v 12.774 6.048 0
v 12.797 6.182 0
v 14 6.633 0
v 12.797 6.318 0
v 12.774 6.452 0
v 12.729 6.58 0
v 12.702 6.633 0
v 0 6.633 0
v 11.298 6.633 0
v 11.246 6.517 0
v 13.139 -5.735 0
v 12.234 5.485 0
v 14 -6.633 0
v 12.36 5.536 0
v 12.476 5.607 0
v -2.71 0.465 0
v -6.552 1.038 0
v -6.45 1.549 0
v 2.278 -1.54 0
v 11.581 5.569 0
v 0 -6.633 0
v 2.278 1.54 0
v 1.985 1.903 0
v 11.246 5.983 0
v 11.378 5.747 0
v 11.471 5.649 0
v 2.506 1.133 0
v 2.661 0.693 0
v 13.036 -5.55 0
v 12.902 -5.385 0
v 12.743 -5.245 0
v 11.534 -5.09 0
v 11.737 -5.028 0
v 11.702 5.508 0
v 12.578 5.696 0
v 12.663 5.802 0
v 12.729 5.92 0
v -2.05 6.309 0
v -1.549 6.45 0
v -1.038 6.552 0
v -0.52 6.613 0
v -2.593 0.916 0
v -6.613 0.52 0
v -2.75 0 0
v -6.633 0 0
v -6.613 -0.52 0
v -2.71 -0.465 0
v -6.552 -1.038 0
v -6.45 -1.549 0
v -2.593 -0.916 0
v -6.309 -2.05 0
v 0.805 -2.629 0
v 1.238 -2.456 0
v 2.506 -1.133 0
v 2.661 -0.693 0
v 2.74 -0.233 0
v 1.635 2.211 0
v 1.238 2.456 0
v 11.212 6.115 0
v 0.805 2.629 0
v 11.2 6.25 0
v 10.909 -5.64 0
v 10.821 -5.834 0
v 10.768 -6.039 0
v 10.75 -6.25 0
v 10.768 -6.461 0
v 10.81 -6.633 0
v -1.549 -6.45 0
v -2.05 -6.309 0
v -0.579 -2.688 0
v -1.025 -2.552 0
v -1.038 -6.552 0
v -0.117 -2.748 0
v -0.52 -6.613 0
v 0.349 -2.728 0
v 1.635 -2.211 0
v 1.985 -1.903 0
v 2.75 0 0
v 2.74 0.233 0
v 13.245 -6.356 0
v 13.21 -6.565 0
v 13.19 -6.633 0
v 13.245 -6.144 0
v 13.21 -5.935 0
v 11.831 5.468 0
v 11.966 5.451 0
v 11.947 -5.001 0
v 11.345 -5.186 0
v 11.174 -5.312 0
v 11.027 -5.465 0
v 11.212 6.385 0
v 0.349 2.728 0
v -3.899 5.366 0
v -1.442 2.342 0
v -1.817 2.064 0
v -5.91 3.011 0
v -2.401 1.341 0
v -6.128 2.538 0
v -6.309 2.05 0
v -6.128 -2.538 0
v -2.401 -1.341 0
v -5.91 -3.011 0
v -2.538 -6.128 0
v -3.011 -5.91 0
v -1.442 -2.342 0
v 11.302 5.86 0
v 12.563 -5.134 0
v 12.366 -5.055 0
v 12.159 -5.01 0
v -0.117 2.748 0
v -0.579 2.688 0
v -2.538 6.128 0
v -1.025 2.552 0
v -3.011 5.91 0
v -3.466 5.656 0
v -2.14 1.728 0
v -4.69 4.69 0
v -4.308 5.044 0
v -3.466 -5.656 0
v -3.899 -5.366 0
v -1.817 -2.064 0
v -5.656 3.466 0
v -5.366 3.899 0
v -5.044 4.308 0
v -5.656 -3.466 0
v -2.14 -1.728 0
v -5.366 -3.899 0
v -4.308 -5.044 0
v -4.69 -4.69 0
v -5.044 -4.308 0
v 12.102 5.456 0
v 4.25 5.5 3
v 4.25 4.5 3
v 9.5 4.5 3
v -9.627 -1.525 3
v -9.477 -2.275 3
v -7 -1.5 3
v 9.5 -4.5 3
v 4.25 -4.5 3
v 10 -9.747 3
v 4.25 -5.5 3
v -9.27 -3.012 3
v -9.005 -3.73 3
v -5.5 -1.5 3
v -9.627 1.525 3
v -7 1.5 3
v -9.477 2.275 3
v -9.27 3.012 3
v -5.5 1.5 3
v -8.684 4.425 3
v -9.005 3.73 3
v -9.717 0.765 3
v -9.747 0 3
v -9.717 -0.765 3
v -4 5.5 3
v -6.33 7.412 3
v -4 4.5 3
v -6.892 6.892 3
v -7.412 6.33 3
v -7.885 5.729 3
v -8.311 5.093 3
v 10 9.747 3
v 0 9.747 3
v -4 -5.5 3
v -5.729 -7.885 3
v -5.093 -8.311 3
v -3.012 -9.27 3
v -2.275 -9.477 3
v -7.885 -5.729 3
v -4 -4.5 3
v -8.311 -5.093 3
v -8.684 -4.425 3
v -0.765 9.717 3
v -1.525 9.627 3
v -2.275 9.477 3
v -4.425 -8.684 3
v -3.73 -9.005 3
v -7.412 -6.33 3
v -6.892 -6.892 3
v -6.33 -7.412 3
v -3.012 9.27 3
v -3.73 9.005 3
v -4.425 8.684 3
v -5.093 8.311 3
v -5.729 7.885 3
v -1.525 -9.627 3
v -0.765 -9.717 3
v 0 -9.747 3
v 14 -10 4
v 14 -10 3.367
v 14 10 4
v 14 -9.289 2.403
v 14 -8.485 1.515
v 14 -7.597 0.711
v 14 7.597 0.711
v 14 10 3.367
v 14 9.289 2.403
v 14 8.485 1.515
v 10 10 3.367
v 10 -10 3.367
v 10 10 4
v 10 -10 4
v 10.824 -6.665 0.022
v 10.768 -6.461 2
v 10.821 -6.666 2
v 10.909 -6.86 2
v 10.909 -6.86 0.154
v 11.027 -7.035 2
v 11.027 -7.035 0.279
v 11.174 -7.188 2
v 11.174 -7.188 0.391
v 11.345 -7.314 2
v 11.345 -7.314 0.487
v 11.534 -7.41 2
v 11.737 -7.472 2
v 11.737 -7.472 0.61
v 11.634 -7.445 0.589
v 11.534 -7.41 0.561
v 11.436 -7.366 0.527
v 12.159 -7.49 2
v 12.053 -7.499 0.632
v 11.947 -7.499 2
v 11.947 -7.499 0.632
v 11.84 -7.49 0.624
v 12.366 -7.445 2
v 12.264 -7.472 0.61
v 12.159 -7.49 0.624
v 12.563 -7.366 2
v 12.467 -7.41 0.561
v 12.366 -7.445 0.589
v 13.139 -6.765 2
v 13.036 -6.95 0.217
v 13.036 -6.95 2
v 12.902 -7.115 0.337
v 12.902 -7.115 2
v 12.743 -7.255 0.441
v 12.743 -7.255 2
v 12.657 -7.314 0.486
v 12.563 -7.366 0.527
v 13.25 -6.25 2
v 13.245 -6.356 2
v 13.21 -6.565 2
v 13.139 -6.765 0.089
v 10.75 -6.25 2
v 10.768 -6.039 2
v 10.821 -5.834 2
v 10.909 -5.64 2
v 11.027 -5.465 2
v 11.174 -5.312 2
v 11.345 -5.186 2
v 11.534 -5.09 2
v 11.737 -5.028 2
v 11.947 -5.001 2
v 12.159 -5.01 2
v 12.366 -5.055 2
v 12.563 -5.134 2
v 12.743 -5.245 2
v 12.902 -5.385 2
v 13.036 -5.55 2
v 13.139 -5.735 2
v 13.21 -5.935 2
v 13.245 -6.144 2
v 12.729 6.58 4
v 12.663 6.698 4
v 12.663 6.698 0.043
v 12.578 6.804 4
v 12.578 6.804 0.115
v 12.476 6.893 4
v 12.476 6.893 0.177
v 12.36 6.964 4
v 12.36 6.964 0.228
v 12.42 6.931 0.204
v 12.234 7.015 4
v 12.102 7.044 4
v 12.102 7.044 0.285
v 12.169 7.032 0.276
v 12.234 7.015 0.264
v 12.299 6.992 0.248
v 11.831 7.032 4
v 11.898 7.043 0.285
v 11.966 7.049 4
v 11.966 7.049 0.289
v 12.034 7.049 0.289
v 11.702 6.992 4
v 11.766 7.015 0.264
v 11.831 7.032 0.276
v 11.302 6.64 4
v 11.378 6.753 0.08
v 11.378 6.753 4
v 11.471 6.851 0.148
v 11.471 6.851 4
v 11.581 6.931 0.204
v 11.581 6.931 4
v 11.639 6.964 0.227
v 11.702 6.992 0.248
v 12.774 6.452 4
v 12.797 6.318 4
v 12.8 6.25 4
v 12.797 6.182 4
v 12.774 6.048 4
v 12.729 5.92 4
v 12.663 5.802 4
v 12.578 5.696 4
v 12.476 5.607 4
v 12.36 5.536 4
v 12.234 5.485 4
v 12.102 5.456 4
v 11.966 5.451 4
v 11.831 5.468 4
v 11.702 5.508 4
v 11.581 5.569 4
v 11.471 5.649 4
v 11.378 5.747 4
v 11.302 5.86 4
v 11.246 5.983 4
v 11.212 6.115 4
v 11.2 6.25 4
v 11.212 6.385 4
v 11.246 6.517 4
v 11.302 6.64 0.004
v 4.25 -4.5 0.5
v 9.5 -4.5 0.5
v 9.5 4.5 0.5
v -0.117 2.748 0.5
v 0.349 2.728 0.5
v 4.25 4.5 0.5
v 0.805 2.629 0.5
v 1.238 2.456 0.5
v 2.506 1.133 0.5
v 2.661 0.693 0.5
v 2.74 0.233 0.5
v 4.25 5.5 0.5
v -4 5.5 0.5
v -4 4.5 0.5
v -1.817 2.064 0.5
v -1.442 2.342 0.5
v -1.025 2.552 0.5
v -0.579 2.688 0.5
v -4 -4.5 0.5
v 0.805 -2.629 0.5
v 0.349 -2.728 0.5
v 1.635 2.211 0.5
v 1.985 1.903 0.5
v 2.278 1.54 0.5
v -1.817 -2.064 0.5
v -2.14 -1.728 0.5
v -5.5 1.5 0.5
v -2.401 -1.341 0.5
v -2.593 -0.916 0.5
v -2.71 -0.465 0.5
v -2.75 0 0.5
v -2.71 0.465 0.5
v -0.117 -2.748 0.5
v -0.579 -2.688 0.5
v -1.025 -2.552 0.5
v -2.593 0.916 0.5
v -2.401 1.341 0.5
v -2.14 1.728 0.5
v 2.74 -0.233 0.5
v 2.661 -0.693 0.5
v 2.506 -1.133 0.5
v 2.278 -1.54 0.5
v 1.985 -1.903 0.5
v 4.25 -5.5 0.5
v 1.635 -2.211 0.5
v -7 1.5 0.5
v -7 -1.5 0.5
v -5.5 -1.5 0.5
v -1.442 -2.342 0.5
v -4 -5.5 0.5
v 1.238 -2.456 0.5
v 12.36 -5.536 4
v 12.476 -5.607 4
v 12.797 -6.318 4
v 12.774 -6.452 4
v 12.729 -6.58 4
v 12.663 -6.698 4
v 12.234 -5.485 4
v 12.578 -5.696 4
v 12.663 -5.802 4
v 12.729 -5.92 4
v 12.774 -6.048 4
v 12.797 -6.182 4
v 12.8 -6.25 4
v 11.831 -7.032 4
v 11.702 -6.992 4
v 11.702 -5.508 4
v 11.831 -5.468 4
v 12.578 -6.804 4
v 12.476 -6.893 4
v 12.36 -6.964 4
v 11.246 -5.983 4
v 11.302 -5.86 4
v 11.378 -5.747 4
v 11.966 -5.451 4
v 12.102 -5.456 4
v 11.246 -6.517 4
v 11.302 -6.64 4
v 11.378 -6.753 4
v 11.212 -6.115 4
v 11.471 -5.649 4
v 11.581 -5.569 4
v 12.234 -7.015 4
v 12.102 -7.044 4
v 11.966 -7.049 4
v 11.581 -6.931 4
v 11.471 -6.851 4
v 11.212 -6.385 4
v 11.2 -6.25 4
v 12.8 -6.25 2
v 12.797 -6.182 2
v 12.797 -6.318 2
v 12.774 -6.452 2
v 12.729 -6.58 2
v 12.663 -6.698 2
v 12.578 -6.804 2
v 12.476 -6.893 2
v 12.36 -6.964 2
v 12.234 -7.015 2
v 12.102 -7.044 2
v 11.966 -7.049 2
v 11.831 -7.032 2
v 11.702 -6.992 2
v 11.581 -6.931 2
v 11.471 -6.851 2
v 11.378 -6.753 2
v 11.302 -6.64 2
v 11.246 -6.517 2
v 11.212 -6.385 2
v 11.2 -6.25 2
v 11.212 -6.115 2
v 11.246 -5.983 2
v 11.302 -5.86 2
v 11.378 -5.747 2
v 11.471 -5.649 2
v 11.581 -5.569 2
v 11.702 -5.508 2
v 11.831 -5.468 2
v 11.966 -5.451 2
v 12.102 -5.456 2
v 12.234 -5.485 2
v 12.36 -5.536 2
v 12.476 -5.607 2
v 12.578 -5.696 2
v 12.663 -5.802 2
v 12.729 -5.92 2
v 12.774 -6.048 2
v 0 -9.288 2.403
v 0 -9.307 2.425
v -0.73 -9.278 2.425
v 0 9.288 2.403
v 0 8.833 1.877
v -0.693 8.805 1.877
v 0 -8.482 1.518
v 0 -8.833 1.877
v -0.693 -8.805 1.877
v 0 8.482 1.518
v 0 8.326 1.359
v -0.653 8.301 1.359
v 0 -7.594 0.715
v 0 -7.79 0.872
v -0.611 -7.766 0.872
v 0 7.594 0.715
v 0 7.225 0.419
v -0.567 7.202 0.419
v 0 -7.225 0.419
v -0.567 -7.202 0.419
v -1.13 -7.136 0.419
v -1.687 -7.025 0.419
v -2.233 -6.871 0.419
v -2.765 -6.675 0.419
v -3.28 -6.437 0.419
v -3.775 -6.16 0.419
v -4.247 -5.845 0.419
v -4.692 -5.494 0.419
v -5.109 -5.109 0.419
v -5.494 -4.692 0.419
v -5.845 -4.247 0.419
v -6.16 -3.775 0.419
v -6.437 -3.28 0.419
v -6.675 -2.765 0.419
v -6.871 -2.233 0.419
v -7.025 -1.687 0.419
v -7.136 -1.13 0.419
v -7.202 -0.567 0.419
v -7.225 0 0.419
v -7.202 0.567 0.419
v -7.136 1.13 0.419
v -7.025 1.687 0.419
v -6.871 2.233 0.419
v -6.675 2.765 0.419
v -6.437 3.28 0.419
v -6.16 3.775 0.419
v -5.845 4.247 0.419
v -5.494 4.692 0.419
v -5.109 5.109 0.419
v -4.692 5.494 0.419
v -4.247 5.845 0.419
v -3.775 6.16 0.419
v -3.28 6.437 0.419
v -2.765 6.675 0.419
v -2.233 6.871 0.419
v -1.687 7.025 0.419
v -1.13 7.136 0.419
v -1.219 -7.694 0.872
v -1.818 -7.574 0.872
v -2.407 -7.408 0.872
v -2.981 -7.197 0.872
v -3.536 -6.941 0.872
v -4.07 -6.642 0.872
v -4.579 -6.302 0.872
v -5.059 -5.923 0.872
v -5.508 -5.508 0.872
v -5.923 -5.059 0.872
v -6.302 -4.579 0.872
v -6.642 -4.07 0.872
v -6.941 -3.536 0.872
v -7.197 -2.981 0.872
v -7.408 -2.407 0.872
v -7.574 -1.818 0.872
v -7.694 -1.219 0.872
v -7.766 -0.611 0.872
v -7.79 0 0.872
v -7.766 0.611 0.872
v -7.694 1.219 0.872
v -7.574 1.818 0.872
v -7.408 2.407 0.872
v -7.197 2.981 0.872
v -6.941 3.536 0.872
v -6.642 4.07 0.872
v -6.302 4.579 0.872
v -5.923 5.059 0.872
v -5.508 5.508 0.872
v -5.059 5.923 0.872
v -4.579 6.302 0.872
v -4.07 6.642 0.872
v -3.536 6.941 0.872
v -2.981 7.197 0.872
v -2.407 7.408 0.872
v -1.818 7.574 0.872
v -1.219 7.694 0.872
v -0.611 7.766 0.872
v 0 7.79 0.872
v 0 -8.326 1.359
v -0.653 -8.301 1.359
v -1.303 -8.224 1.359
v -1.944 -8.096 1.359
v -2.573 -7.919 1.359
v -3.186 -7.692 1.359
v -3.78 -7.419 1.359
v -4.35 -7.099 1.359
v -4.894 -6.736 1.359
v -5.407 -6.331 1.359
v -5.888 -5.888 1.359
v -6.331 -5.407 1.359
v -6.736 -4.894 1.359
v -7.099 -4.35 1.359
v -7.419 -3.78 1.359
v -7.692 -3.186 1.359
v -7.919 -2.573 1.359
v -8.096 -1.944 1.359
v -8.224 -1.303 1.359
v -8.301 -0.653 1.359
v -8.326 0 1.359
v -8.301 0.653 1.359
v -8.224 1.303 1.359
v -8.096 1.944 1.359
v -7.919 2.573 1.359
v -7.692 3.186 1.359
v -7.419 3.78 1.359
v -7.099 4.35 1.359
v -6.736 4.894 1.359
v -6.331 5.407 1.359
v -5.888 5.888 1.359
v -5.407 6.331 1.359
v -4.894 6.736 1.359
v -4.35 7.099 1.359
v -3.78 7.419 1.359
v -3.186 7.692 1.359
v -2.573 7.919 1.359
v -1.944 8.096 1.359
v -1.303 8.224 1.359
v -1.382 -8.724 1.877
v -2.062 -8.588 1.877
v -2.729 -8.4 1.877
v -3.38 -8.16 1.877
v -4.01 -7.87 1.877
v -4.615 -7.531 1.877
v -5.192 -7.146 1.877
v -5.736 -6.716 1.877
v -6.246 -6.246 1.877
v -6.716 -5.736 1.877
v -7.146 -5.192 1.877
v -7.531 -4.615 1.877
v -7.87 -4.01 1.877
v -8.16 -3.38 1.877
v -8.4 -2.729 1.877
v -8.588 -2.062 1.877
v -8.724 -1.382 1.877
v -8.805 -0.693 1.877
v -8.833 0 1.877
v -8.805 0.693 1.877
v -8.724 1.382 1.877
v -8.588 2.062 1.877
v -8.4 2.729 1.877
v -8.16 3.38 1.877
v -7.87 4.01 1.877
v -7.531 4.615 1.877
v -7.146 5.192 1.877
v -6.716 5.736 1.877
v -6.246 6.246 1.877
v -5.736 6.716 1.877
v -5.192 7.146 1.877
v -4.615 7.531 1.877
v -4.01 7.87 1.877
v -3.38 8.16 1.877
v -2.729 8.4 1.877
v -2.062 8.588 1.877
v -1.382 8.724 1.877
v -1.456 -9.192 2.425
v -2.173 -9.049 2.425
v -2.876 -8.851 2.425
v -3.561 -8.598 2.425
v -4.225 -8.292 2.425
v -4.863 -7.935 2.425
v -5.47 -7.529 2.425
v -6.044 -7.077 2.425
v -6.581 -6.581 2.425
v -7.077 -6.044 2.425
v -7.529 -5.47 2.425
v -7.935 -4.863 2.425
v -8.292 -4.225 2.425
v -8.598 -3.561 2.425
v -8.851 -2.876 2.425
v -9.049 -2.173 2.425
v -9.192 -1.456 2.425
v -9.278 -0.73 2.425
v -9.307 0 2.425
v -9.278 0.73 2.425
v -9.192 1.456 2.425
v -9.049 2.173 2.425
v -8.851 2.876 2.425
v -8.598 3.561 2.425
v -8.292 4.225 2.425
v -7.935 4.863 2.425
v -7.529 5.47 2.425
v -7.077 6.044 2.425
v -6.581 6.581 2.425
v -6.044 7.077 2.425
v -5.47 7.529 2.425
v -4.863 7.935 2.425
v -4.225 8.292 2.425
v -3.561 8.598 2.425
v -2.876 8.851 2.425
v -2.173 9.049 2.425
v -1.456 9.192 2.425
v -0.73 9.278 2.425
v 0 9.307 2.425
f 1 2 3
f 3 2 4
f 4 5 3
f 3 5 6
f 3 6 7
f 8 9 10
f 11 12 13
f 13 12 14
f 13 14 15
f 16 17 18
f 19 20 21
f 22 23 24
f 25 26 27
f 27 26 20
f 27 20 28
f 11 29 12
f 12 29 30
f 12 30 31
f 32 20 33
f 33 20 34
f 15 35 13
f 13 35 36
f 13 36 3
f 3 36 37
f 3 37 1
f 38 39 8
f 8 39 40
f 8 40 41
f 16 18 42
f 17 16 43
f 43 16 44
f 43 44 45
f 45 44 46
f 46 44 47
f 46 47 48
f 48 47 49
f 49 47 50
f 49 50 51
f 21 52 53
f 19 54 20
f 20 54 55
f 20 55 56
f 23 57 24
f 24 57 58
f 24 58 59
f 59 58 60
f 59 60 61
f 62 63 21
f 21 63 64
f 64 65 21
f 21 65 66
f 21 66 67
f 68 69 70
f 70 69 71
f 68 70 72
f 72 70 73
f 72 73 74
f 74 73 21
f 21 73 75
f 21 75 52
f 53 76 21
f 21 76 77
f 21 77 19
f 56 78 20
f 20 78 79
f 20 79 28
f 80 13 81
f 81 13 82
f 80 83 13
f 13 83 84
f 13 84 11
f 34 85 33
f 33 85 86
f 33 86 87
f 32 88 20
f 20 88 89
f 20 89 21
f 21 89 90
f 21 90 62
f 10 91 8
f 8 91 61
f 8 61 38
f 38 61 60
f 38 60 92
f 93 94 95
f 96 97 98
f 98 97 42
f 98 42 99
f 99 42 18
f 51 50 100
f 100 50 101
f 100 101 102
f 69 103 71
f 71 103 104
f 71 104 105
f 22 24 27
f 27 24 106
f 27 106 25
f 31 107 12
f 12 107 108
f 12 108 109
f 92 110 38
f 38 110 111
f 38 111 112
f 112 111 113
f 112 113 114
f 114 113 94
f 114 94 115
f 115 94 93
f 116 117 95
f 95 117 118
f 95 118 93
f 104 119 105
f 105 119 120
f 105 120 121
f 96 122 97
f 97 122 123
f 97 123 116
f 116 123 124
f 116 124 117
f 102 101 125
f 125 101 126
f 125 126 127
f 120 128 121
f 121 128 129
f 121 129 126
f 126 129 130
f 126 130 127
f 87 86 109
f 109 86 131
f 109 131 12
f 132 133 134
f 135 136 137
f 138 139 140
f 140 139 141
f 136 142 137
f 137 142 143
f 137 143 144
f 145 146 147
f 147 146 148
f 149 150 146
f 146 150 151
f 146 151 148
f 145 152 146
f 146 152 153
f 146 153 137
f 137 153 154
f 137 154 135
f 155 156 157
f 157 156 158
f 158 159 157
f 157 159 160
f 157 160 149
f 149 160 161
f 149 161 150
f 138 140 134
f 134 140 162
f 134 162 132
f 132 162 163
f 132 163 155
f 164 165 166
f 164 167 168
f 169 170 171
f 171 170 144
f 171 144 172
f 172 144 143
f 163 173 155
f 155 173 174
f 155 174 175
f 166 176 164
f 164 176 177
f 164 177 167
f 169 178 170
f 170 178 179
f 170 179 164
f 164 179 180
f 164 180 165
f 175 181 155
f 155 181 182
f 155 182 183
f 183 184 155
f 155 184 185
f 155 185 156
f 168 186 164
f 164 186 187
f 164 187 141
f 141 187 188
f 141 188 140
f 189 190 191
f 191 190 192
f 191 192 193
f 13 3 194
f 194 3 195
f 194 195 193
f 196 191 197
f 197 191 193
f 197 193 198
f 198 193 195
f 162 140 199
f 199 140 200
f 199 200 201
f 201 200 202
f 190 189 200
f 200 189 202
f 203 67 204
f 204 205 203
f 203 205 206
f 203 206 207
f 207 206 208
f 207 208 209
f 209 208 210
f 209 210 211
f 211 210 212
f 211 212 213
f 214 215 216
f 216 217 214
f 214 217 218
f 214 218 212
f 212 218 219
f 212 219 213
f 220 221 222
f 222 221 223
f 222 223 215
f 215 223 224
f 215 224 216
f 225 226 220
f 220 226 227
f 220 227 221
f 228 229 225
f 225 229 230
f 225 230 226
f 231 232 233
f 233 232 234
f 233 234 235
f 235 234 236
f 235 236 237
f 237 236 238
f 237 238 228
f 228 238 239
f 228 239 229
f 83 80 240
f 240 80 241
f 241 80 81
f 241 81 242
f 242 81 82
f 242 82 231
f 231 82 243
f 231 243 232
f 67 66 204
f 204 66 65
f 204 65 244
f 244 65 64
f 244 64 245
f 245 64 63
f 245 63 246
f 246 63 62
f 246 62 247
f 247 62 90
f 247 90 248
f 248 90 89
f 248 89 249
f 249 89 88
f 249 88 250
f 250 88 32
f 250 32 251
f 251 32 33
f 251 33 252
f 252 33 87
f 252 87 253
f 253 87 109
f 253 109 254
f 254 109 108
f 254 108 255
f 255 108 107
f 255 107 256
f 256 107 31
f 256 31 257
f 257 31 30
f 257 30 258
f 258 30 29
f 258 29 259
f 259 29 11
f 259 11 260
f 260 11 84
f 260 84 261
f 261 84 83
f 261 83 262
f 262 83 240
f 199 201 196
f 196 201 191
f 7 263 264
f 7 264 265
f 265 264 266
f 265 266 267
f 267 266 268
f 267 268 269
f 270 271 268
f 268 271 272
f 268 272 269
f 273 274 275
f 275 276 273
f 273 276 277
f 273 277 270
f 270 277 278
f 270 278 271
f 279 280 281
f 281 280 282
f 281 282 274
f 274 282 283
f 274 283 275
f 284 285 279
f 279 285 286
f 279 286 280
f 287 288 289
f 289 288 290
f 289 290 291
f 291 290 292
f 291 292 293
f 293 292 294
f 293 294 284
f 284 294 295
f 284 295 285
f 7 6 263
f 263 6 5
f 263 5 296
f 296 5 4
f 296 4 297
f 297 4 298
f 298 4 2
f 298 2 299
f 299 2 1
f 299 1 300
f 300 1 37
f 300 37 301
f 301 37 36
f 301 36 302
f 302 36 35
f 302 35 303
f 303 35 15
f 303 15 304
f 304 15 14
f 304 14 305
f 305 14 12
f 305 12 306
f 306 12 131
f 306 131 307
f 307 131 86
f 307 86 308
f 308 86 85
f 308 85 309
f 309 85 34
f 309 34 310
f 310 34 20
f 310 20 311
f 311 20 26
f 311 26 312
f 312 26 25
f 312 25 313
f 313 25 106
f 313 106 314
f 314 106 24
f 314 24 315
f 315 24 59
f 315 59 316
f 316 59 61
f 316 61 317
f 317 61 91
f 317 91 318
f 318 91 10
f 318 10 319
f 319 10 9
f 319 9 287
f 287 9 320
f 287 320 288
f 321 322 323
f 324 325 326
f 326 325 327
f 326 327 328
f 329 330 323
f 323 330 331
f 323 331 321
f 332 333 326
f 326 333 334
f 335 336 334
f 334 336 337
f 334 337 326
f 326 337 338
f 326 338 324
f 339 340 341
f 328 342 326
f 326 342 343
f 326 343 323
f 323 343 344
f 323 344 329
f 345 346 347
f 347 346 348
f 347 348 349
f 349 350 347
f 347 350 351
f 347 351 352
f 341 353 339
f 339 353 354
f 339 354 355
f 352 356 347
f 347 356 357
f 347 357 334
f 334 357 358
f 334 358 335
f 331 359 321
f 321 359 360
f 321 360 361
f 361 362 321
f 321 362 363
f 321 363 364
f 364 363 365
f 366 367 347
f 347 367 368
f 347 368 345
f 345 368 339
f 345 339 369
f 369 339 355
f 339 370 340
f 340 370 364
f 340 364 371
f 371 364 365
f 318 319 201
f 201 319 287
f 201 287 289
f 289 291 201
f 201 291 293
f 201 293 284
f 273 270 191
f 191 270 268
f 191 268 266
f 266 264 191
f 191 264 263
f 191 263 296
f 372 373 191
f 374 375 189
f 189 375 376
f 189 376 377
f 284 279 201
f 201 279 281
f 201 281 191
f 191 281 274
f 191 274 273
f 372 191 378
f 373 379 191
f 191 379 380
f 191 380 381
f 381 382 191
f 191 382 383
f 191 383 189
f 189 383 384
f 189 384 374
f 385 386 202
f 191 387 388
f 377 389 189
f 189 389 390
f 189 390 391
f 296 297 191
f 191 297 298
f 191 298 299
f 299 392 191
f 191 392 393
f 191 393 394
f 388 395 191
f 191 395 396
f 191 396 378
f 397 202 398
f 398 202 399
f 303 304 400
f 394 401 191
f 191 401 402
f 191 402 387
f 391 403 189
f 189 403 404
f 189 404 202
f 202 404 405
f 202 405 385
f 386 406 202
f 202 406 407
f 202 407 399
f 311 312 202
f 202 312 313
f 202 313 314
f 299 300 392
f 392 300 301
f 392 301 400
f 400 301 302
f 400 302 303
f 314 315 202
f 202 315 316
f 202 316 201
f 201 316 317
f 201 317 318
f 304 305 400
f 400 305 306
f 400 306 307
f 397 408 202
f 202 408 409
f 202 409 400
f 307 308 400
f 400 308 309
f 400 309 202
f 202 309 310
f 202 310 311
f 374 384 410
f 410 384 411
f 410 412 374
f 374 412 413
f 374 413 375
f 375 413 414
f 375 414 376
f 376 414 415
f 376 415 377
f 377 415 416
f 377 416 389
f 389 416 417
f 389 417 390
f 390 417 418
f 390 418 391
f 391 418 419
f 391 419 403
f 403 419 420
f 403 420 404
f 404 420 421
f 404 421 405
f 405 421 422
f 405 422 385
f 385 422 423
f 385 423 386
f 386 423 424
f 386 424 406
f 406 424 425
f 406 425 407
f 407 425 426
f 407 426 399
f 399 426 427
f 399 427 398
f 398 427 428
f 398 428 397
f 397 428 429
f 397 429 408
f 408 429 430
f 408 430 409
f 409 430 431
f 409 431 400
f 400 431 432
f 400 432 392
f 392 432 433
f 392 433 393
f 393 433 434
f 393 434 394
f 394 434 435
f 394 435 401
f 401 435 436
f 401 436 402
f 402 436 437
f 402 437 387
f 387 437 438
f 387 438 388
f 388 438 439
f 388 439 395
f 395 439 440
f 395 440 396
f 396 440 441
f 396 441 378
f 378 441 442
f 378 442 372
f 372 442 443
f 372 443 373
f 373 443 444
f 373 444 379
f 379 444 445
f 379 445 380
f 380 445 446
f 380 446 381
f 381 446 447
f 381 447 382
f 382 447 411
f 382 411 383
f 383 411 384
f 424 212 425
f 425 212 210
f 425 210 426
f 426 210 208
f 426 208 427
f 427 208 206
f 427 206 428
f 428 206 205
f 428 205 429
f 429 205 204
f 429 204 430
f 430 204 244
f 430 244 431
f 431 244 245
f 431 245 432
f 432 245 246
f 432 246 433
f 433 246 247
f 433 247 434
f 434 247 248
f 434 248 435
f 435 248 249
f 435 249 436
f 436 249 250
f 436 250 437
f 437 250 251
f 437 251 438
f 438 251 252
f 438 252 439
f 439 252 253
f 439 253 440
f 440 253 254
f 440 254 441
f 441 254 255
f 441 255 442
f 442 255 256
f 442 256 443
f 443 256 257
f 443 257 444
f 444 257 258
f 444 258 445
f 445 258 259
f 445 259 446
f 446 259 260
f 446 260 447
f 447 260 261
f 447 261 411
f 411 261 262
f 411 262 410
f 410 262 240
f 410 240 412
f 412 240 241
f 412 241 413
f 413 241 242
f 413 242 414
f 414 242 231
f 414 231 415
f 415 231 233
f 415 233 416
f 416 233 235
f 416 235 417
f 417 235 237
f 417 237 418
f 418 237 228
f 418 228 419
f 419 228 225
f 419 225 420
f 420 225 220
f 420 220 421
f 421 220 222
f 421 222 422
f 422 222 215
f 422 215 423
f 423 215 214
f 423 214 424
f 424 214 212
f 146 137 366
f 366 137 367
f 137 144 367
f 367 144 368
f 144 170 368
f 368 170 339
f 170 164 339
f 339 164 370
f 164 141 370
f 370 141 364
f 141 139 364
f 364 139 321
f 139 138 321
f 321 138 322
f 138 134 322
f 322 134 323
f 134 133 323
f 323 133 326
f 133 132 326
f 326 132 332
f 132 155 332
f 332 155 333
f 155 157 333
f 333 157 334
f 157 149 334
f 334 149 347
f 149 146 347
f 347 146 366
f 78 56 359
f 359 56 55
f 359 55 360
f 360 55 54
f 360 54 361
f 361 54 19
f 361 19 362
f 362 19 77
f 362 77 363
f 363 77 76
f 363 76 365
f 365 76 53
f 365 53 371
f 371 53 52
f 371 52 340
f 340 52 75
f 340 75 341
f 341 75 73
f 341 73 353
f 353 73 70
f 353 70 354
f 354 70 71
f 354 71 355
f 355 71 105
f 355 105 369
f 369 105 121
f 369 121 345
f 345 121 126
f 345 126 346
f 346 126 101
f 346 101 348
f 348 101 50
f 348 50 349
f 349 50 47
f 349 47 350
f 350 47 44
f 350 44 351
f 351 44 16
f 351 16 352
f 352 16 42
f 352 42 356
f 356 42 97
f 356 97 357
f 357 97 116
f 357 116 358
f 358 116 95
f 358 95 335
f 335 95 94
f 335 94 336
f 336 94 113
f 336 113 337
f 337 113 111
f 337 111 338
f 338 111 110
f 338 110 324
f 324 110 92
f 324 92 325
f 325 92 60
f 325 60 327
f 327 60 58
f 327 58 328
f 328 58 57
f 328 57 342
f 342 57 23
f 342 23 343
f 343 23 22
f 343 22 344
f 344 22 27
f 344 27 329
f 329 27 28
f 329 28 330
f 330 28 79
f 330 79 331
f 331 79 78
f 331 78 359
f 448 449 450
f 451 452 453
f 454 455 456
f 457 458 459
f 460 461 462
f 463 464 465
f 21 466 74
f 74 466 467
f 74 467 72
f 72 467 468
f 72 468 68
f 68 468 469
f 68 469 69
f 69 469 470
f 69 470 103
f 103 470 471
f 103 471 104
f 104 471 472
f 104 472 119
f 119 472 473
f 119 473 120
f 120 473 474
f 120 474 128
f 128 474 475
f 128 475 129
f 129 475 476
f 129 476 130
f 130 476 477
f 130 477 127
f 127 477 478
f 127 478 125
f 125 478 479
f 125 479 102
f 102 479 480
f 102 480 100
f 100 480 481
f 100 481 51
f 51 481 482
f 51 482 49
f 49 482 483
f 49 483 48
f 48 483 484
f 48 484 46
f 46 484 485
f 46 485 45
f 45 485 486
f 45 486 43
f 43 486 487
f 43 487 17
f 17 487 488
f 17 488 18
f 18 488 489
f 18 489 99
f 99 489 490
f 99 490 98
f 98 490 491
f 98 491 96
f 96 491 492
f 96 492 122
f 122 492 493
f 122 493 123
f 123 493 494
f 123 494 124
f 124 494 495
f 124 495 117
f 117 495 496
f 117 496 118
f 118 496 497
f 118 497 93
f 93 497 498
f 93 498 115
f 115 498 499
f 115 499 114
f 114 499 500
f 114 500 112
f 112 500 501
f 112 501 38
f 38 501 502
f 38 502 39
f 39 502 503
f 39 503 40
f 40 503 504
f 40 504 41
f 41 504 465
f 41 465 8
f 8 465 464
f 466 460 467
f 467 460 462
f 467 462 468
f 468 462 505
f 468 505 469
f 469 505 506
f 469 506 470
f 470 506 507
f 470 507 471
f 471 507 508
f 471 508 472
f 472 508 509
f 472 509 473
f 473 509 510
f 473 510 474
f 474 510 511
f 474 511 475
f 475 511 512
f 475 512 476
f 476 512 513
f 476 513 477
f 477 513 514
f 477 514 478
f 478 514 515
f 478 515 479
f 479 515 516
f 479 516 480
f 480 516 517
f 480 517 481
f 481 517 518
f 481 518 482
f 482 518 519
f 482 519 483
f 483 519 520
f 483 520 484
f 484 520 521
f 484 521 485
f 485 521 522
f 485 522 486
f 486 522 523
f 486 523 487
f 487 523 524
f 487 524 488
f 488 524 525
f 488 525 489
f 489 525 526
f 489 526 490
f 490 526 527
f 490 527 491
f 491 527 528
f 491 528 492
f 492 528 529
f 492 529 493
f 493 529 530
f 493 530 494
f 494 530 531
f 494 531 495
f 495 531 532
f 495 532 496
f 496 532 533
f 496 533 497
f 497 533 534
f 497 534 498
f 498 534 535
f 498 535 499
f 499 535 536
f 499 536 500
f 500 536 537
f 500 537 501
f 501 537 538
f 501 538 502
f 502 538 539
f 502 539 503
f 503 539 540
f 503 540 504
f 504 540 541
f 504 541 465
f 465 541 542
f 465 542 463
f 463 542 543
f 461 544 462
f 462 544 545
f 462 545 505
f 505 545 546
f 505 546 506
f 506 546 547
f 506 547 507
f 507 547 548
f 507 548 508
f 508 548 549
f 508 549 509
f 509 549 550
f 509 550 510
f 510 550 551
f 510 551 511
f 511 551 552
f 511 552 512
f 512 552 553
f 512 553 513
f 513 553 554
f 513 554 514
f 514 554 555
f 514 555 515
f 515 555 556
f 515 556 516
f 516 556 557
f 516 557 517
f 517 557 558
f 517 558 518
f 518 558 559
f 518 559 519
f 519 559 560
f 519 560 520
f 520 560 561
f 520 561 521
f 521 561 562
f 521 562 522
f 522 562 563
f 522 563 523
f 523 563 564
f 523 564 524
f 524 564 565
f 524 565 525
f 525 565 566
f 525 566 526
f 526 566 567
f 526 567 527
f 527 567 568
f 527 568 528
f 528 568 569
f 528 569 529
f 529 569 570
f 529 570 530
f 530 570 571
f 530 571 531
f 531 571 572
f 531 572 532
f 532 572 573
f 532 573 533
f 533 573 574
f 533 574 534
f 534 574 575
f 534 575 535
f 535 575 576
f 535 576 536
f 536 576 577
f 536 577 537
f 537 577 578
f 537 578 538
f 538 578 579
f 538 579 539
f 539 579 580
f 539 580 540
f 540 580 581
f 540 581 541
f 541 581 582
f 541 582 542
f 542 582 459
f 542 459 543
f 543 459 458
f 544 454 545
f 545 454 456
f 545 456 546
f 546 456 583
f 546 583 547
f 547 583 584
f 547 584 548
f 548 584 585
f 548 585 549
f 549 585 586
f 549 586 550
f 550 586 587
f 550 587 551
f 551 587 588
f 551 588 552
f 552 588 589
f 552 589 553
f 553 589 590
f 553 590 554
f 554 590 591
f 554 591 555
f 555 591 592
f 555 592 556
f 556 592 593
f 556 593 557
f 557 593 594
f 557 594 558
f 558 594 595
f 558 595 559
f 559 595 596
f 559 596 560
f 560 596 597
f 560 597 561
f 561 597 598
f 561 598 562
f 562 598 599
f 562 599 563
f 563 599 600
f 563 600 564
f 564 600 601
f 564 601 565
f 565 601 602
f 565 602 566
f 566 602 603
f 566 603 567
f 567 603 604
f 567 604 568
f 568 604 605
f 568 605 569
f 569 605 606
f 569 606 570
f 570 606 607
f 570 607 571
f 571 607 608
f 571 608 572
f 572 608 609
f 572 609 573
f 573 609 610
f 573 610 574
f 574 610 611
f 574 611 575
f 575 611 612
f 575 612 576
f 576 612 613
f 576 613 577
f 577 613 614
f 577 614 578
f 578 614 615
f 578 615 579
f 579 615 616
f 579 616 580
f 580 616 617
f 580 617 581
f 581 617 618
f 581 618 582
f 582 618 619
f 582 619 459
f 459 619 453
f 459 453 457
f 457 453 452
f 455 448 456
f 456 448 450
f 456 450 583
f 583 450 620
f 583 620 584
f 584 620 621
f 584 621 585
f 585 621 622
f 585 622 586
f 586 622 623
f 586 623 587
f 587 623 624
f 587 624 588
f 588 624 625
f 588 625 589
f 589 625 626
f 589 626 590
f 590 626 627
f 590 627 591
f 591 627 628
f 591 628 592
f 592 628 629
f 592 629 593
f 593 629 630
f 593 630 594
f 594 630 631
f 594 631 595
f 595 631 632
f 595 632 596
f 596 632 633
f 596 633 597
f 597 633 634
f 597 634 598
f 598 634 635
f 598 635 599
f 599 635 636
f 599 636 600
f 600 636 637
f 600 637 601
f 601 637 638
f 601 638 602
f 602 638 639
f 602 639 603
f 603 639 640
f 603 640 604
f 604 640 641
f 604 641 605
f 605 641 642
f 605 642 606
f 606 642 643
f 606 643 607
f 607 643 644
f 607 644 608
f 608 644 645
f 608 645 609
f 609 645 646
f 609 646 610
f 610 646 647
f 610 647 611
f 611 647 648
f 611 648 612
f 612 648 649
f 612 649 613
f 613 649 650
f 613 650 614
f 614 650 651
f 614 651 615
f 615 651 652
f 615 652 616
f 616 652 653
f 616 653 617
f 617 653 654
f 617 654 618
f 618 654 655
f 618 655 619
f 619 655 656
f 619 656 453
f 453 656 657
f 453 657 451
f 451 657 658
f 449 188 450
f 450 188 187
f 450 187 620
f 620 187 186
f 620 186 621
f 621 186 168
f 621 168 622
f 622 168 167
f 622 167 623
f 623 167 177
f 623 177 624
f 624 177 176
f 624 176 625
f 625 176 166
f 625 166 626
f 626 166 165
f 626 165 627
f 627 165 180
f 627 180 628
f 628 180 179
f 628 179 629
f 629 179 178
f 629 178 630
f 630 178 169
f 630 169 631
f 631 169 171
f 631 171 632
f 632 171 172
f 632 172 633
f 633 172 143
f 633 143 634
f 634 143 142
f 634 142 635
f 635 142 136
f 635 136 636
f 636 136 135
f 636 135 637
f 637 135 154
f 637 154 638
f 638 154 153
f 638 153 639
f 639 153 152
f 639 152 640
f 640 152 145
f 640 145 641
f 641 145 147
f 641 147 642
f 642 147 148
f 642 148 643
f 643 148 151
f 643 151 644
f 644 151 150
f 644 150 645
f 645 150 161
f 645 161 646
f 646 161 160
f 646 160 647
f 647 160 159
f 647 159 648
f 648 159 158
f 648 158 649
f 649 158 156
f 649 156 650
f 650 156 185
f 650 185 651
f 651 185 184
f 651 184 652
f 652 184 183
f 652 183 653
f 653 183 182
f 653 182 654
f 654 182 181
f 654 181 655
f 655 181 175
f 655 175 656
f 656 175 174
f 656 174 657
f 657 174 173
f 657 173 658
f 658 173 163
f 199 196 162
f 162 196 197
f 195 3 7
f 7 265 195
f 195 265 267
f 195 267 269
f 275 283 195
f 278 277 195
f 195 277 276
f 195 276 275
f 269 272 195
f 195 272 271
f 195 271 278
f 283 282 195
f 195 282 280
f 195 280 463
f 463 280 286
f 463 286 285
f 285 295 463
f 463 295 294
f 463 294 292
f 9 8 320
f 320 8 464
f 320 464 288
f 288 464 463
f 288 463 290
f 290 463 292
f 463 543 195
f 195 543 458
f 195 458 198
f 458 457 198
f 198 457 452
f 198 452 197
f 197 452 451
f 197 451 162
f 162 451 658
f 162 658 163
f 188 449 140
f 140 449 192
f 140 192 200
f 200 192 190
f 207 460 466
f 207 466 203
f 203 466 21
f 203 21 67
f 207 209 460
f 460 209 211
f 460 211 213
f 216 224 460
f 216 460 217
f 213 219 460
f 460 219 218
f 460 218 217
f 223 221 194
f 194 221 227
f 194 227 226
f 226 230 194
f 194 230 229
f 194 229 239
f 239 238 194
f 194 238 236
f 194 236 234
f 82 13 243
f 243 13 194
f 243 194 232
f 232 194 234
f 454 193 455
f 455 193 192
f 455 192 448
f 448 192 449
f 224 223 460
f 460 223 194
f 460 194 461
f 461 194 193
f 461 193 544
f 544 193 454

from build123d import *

# Parameters (mm, degrees)
SKETCH1_R           = 10
BOSS_EXTRUDE1_DEPTH = 4
BODY_START          = 5
SKETCH2_R           = 10
BODY_HOLE_DEPTH     = 2
SKETCH5_R           = 0.8
SCREW_HOLES_DEPTH   = 5
SKETCH6_R           = 1.25
SCREW_HEADS_DEPTH   = 2
POT_START           = 0.5
POT_INSERT_DEPTH    = 2.5
SKETCH4_R           = 2.75
POT_HOLE_DEPTH      = 5
CUT_REVOLVE6_ANGLE  = 180
CUT_EXTRUDE1_DEPTH  = 14.999999999


with BuildPart() as part:
    # Sketch1 → Boss-Extrude1 (new body)
    with BuildSketch(Plane.XY):
        Circle(SKETCH1_R)
        with BuildLine():
            Line((13.999999999, 10), (-1e-09, 10))
            ThreePointArc((-1e-09, 10), (7.071067811, 7.071067812), (9.999999999, 0))
            ThreePointArc((9.999999999, 0), (7.071067811, -7.071067812), (-1e-09, -10))
            Line((-1e-09, -10), (13.999999999, -10))
            Line((13.999999999, -10), (13.999999999, 10))
        make_face()
    extrude(amount=BOSS_EXTRUDE1_DEPTH)

    # Sketch2 → Body Hole (cut)
    with BuildSketch(Plane.XY.offset(BODY_START)):
        Circle(SKETCH2_R)
        with BuildLine():
            Line((9.999999999, 10), (-1e-09, 10))
            ThreePointArc((-1e-09, 10), (7.071067811, 7.071067812), (9.999999999, 0))
            Line((9.999999999, 0), (9.999999999, 10))
        make_face()
        with BuildLine():
            Line((9.999999999, -10), (9.999999999, 0))
            ThreePointArc((9.999999999, 0), (7.071067811, -7.071067812), (-1e-09, -10))
            Line((-1e-09, -10), (9.999999999, -10))
        make_face()
    extrude(amount=-BODY_HOLE_DEPTH, mode=Mode.SUBTRACT)

    # Sketch5 → Screw Holes (cut, through all)
    with BuildSketch(Plane.XY):
        with Locations((11.999999999, 6.25)):
            Circle(SKETCH5_R)
        with Locations((11.999999999, -6.25)):
            Circle(SKETCH5_R)
    extrude(amount=SCREW_HOLES_DEPTH, mode=Mode.SUBTRACT)

    # Sketch6 → Screw Heads (cut)
    with BuildSketch(Plane.XY):
        with Locations((11.999999999, -6.25)):
            Circle(SKETCH6_R)
    extrude(amount=SCREW_HEADS_DEPTH, mode=Mode.SUBTRACT)

    # Sketch3 → Pot Insert (cut)
    with BuildSketch(Plane(origin=(28.28760271, 0, 0), x_dir=(1, 0, 0), z_dir=(0, 0, 1)).offset(POT_START)):
        Polygon((-35.287602709, 0), (-35.287602709, -1.5), (-33.787602709, -1.5), (-32.287602709, -4.5), (-32.287602709, -5.5), (-28.287602709, -5.5), (-24.037602709, -5.5), (-24.037602709, -4.5), (-18.787602709, -4.5), (-18.787602709, 0), (-18.787602709, 4.5), (-24.037602709, 4.5), (-24.037602709, 5.5), (-28.287602709, 5.5), (-32.287602709, 5.5), (-32.287602709, 4.5), (-33.787602709, 1.5), (-35.287602709, 1.5), align=None)
    extrude(amount=POT_INSERT_DEPTH, mode=Mode.SUBTRACT)

    # Sketch4 → Pot Hole (cut, through all)
    with BuildSketch(Plane.XY):
        Circle(SKETCH4_R)
    extrude(amount=POT_HOLE_DEPTH, mode=Mode.SUBTRACT)

    # Sketch11 → Cut-Revolve6 (revolve, cut)
    with BuildSketch(Plane(origin=(0, 0, 0), x_dir=(0, 0, -1), z_dir=(1, 0, 0))):
        with BuildLine():
            Line((1.680646386, 2.75), (2, 2.75))
            Line((2, 2.75), (2, 12))
            Line((2, 12), (-10, 12))
            ThreePointArc((-10, 12), (-2.550167787, 9.407443861), (1.680646386, 2.75))
        make_face()
    revolve(axis=Axis((0, 0, 0), (0, 0, 1)), revolution_arc=CUT_REVOLVE6_ANGLE, mode=Mode.SUBTRACT)

    # Sketch13 → Cut-Extrude1 (cut, through all)
    with BuildSketch(Plane(origin=(0, 0, 0), x_dir=(0, 0, -1), z_dir=(1, 0, 0))):
        with BuildLine():
            Line((2, 12), (-10, 12))
            ThreePointArc((-10, 12), (-1.514718626, 8.485281374), (2, 0))
            Line((2, 0), (2, 12))
        make_face()
        with BuildLine():
            Line((2, 0), (2, -12))
            Line((2, -12), (-10, -12))
            ThreePointArc((-10, -12), (-1.514718626, -8.485281374), (2, 0))
        make_face()
    extrude(amount=CUT_EXTRUDE1_DEPTH, mode=Mode.SUBTRACT)


solid = part.part
